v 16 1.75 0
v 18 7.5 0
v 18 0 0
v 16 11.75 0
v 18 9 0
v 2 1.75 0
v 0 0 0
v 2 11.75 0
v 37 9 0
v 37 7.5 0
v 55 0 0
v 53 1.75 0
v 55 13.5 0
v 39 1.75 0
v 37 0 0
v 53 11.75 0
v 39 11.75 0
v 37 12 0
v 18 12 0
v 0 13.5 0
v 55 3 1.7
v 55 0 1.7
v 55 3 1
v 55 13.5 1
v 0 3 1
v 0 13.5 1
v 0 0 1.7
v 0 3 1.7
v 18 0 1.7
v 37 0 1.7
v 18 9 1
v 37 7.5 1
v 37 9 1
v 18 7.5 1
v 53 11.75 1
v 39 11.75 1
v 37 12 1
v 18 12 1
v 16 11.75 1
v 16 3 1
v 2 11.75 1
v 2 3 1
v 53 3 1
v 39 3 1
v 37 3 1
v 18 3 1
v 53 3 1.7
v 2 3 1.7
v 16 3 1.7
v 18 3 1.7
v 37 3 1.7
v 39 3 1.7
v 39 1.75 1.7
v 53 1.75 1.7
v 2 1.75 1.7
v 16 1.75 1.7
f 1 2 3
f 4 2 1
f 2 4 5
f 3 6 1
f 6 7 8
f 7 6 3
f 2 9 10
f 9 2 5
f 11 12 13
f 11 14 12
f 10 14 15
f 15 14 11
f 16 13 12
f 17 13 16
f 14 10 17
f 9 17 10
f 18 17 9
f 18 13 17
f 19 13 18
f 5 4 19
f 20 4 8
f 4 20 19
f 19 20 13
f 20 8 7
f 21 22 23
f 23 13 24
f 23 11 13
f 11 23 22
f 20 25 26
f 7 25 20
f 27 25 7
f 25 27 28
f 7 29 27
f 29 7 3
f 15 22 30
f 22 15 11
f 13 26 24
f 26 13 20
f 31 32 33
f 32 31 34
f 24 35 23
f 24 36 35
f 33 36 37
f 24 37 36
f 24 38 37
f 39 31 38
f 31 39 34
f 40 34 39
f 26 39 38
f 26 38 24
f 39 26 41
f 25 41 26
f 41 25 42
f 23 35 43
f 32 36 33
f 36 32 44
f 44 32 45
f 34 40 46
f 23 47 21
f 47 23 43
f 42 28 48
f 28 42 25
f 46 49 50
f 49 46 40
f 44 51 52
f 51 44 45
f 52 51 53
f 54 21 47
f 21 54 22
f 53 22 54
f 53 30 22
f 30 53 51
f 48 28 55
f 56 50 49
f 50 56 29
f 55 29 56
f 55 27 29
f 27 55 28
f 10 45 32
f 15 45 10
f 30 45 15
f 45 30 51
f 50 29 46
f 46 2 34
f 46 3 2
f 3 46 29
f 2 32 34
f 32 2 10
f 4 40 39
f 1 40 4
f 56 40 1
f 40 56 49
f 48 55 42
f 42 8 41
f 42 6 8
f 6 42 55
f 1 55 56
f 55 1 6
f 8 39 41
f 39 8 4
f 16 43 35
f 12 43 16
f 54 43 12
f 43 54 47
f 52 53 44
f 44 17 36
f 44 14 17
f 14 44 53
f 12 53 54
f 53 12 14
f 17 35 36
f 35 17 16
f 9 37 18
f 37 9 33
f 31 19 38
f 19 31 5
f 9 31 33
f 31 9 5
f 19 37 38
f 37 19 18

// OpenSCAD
$fn = 96;

difference() {
    union() {
        linear_extrude(1) square([55, 13.5]);
        linear_extrude(1.7) square([55, 3]);
    }
    translate([(55 - 19) / 2, 0]) linear_extrude(10) square([19, 7.5]);
    h = 10;
    w = 14;
    translate([2, (13.5 - h) / 2]) linear_extrude(10) square([w, h]);
    translate([55 - 2 - w, (13.5 - h) / 2]) linear_extrude(10) square([w, h]);

    h2 = 3;
    translate([(55 - 19) / 2, 7.5 + (13.5 - 7.5-h2)/2]) linear_extrude(10) square([19, h2]);
}
